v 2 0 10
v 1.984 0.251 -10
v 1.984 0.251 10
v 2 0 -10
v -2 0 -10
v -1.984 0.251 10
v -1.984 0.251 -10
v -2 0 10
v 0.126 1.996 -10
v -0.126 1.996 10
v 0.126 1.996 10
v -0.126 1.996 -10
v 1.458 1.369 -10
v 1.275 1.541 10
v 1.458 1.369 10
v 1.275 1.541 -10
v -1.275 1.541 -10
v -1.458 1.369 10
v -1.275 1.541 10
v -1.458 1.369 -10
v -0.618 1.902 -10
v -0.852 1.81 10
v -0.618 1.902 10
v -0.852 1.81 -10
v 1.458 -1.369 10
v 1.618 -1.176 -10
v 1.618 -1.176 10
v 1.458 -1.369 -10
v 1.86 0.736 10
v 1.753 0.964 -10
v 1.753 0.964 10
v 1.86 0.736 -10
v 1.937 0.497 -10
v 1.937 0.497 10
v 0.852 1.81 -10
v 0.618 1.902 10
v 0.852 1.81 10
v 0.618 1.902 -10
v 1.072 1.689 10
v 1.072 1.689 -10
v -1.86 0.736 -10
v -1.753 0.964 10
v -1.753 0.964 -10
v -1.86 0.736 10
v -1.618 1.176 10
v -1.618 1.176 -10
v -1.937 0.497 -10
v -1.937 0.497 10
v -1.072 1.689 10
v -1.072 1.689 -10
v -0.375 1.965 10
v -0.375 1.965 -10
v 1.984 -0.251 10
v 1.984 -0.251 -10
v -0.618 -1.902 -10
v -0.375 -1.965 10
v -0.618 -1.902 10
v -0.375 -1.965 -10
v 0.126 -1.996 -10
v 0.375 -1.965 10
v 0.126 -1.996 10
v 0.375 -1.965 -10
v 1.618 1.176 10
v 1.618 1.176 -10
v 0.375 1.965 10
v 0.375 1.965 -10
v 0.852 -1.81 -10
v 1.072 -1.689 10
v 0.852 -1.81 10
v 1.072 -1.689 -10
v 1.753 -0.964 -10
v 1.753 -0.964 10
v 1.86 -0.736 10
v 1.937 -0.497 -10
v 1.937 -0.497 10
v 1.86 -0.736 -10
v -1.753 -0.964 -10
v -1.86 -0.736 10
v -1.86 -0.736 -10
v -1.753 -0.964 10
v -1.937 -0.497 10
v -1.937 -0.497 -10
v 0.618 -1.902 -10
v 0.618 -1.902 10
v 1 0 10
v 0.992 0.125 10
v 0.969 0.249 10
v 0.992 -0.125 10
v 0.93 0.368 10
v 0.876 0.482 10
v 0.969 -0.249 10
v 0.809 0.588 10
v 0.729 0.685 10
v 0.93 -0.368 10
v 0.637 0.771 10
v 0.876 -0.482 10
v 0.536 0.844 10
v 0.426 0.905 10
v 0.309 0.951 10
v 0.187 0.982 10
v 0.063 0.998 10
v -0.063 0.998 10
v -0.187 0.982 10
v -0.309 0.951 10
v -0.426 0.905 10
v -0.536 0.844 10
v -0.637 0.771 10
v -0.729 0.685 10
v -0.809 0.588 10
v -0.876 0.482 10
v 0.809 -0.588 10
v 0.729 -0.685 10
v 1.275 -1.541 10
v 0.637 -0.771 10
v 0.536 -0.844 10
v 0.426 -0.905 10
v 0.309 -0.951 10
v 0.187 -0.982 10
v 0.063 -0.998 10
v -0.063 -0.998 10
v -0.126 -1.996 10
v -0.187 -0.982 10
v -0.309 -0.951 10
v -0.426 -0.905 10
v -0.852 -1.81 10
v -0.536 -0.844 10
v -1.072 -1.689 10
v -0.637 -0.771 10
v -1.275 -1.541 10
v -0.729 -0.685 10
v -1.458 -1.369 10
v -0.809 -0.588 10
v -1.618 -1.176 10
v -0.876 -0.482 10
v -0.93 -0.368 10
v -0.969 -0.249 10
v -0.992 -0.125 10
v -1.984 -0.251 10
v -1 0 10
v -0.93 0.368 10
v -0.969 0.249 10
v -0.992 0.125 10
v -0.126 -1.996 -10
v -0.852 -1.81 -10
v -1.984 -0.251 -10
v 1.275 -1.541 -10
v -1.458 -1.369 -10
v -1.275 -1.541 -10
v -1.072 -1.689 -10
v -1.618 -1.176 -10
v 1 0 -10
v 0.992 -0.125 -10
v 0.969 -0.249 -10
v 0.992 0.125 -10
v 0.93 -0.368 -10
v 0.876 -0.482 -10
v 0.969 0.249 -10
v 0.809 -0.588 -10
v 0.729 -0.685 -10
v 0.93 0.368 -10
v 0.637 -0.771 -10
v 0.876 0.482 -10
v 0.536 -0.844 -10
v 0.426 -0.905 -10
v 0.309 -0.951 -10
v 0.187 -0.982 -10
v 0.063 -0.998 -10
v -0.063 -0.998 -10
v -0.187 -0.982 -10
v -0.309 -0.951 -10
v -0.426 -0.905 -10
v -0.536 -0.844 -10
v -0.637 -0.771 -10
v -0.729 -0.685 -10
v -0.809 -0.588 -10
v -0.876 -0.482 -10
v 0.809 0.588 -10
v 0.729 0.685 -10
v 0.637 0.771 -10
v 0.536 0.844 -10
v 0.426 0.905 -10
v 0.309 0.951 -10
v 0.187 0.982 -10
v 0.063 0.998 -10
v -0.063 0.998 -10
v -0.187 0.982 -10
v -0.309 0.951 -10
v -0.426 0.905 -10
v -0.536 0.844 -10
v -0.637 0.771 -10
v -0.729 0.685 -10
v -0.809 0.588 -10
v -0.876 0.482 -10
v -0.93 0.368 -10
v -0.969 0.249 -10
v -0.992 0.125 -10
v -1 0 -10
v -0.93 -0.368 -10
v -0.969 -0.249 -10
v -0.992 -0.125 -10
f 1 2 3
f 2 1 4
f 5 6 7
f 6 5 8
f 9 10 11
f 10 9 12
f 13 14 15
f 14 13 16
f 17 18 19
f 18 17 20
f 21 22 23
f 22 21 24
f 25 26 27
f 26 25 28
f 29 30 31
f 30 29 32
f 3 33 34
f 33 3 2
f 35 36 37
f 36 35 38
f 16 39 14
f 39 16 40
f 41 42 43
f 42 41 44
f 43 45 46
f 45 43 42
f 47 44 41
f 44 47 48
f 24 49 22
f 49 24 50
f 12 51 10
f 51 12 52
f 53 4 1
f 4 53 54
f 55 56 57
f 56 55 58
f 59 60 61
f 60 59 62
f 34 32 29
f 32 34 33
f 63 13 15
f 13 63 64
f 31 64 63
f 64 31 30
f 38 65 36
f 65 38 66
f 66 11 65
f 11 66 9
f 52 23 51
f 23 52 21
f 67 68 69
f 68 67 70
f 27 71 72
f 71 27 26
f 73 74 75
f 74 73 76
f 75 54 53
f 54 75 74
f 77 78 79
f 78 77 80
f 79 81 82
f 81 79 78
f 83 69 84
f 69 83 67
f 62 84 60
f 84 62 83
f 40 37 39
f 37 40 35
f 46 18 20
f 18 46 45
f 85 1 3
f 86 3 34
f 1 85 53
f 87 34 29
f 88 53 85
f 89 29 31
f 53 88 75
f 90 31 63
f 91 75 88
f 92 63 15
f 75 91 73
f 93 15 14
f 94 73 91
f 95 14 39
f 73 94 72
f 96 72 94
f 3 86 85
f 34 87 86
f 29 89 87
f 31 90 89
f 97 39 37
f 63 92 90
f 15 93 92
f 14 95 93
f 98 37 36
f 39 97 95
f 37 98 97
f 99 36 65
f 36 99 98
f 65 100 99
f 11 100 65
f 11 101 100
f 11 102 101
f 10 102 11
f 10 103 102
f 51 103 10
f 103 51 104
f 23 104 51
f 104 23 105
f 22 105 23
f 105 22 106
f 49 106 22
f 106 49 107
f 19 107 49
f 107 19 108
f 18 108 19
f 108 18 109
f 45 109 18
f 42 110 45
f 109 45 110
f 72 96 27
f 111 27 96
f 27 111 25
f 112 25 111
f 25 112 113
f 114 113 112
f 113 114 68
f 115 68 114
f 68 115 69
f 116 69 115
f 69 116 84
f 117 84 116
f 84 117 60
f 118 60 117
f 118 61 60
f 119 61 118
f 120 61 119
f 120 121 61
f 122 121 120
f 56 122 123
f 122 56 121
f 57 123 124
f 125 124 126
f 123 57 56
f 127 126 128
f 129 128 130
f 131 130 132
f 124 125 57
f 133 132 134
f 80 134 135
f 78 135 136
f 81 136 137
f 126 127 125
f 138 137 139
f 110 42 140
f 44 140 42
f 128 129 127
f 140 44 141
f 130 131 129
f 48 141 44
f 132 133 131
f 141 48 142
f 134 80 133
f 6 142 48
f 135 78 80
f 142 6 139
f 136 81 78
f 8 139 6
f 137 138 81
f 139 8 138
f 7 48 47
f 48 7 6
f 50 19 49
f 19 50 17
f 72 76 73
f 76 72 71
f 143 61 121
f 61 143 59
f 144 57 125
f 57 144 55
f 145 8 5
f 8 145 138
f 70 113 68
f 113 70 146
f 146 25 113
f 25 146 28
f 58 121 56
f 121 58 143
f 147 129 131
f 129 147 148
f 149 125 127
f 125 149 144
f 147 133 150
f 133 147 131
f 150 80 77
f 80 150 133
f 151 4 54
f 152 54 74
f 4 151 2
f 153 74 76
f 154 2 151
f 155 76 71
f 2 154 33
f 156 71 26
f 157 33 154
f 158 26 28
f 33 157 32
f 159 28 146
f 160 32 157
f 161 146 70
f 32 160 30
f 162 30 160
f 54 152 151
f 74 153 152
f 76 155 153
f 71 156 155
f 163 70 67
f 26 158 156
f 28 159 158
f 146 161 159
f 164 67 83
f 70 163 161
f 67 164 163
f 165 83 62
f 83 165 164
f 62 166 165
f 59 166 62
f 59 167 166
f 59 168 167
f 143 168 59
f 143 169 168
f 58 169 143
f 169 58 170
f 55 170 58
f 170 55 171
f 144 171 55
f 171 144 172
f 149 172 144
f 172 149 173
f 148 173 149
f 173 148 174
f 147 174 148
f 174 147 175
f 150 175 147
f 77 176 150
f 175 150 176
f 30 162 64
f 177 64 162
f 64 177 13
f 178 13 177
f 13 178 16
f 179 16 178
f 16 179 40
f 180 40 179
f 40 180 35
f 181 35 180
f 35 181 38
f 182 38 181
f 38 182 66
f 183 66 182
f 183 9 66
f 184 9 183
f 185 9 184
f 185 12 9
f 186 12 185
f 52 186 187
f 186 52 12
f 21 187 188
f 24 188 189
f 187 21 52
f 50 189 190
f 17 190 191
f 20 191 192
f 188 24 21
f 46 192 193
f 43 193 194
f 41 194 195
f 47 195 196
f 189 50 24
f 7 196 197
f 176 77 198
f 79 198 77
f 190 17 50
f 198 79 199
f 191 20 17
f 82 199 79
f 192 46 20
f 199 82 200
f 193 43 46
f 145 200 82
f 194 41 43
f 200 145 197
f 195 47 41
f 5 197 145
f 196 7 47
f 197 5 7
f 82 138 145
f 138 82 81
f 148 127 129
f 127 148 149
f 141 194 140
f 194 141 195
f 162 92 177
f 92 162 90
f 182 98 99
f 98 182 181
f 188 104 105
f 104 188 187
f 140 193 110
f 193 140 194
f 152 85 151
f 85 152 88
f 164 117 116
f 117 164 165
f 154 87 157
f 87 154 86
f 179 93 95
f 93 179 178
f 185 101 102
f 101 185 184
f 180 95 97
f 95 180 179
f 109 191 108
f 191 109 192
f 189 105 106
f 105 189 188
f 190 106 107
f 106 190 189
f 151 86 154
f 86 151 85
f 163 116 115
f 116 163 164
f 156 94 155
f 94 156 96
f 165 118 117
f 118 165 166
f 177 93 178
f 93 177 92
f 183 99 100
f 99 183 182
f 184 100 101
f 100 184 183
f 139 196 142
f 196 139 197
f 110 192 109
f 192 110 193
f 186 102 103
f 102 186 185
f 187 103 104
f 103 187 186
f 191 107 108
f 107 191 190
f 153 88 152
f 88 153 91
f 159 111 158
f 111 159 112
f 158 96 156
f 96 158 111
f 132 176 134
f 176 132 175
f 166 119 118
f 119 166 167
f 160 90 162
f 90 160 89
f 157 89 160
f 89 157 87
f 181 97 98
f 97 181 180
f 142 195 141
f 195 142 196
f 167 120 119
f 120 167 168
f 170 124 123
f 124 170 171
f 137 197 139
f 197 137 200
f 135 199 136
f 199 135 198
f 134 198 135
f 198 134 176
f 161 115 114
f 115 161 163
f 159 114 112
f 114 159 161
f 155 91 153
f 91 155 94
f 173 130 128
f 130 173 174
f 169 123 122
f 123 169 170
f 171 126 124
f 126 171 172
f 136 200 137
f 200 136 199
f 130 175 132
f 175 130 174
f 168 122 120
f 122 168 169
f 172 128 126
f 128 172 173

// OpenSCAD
$fn = 50;


difference() {
	union() {
		translate(v = [0, 0, -10.0000000000]) {
			cylinder(h = 20, r = 2.0000000000);
		}
	}
	union() {
		translate(v = [0, 0, -100.0000000000]) {
			cylinder(h = 200, r = 1.0000000000);
		}
	}
}
